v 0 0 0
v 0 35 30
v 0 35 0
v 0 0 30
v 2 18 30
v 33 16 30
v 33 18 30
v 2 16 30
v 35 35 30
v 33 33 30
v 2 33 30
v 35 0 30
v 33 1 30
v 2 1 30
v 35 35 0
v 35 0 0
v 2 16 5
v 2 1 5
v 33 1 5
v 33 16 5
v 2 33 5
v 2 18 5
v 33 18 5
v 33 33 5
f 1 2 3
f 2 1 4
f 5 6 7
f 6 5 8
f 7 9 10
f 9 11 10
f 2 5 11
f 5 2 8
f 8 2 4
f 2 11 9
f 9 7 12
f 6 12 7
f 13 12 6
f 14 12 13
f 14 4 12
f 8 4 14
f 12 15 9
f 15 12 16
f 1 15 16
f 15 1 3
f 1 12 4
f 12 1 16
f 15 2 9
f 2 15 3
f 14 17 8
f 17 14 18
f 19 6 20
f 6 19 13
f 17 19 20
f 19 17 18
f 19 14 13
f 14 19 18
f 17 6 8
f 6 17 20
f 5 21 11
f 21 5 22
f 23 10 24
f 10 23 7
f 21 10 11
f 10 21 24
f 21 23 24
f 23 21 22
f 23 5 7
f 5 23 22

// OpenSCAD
difference () {
cube([35, 35, 30]);

translate ([2, 1, 5]) cube([31, 15, 30]);      
    
translate ([2, 18, 5]) cube([31, 15, 30]);  
    
}
